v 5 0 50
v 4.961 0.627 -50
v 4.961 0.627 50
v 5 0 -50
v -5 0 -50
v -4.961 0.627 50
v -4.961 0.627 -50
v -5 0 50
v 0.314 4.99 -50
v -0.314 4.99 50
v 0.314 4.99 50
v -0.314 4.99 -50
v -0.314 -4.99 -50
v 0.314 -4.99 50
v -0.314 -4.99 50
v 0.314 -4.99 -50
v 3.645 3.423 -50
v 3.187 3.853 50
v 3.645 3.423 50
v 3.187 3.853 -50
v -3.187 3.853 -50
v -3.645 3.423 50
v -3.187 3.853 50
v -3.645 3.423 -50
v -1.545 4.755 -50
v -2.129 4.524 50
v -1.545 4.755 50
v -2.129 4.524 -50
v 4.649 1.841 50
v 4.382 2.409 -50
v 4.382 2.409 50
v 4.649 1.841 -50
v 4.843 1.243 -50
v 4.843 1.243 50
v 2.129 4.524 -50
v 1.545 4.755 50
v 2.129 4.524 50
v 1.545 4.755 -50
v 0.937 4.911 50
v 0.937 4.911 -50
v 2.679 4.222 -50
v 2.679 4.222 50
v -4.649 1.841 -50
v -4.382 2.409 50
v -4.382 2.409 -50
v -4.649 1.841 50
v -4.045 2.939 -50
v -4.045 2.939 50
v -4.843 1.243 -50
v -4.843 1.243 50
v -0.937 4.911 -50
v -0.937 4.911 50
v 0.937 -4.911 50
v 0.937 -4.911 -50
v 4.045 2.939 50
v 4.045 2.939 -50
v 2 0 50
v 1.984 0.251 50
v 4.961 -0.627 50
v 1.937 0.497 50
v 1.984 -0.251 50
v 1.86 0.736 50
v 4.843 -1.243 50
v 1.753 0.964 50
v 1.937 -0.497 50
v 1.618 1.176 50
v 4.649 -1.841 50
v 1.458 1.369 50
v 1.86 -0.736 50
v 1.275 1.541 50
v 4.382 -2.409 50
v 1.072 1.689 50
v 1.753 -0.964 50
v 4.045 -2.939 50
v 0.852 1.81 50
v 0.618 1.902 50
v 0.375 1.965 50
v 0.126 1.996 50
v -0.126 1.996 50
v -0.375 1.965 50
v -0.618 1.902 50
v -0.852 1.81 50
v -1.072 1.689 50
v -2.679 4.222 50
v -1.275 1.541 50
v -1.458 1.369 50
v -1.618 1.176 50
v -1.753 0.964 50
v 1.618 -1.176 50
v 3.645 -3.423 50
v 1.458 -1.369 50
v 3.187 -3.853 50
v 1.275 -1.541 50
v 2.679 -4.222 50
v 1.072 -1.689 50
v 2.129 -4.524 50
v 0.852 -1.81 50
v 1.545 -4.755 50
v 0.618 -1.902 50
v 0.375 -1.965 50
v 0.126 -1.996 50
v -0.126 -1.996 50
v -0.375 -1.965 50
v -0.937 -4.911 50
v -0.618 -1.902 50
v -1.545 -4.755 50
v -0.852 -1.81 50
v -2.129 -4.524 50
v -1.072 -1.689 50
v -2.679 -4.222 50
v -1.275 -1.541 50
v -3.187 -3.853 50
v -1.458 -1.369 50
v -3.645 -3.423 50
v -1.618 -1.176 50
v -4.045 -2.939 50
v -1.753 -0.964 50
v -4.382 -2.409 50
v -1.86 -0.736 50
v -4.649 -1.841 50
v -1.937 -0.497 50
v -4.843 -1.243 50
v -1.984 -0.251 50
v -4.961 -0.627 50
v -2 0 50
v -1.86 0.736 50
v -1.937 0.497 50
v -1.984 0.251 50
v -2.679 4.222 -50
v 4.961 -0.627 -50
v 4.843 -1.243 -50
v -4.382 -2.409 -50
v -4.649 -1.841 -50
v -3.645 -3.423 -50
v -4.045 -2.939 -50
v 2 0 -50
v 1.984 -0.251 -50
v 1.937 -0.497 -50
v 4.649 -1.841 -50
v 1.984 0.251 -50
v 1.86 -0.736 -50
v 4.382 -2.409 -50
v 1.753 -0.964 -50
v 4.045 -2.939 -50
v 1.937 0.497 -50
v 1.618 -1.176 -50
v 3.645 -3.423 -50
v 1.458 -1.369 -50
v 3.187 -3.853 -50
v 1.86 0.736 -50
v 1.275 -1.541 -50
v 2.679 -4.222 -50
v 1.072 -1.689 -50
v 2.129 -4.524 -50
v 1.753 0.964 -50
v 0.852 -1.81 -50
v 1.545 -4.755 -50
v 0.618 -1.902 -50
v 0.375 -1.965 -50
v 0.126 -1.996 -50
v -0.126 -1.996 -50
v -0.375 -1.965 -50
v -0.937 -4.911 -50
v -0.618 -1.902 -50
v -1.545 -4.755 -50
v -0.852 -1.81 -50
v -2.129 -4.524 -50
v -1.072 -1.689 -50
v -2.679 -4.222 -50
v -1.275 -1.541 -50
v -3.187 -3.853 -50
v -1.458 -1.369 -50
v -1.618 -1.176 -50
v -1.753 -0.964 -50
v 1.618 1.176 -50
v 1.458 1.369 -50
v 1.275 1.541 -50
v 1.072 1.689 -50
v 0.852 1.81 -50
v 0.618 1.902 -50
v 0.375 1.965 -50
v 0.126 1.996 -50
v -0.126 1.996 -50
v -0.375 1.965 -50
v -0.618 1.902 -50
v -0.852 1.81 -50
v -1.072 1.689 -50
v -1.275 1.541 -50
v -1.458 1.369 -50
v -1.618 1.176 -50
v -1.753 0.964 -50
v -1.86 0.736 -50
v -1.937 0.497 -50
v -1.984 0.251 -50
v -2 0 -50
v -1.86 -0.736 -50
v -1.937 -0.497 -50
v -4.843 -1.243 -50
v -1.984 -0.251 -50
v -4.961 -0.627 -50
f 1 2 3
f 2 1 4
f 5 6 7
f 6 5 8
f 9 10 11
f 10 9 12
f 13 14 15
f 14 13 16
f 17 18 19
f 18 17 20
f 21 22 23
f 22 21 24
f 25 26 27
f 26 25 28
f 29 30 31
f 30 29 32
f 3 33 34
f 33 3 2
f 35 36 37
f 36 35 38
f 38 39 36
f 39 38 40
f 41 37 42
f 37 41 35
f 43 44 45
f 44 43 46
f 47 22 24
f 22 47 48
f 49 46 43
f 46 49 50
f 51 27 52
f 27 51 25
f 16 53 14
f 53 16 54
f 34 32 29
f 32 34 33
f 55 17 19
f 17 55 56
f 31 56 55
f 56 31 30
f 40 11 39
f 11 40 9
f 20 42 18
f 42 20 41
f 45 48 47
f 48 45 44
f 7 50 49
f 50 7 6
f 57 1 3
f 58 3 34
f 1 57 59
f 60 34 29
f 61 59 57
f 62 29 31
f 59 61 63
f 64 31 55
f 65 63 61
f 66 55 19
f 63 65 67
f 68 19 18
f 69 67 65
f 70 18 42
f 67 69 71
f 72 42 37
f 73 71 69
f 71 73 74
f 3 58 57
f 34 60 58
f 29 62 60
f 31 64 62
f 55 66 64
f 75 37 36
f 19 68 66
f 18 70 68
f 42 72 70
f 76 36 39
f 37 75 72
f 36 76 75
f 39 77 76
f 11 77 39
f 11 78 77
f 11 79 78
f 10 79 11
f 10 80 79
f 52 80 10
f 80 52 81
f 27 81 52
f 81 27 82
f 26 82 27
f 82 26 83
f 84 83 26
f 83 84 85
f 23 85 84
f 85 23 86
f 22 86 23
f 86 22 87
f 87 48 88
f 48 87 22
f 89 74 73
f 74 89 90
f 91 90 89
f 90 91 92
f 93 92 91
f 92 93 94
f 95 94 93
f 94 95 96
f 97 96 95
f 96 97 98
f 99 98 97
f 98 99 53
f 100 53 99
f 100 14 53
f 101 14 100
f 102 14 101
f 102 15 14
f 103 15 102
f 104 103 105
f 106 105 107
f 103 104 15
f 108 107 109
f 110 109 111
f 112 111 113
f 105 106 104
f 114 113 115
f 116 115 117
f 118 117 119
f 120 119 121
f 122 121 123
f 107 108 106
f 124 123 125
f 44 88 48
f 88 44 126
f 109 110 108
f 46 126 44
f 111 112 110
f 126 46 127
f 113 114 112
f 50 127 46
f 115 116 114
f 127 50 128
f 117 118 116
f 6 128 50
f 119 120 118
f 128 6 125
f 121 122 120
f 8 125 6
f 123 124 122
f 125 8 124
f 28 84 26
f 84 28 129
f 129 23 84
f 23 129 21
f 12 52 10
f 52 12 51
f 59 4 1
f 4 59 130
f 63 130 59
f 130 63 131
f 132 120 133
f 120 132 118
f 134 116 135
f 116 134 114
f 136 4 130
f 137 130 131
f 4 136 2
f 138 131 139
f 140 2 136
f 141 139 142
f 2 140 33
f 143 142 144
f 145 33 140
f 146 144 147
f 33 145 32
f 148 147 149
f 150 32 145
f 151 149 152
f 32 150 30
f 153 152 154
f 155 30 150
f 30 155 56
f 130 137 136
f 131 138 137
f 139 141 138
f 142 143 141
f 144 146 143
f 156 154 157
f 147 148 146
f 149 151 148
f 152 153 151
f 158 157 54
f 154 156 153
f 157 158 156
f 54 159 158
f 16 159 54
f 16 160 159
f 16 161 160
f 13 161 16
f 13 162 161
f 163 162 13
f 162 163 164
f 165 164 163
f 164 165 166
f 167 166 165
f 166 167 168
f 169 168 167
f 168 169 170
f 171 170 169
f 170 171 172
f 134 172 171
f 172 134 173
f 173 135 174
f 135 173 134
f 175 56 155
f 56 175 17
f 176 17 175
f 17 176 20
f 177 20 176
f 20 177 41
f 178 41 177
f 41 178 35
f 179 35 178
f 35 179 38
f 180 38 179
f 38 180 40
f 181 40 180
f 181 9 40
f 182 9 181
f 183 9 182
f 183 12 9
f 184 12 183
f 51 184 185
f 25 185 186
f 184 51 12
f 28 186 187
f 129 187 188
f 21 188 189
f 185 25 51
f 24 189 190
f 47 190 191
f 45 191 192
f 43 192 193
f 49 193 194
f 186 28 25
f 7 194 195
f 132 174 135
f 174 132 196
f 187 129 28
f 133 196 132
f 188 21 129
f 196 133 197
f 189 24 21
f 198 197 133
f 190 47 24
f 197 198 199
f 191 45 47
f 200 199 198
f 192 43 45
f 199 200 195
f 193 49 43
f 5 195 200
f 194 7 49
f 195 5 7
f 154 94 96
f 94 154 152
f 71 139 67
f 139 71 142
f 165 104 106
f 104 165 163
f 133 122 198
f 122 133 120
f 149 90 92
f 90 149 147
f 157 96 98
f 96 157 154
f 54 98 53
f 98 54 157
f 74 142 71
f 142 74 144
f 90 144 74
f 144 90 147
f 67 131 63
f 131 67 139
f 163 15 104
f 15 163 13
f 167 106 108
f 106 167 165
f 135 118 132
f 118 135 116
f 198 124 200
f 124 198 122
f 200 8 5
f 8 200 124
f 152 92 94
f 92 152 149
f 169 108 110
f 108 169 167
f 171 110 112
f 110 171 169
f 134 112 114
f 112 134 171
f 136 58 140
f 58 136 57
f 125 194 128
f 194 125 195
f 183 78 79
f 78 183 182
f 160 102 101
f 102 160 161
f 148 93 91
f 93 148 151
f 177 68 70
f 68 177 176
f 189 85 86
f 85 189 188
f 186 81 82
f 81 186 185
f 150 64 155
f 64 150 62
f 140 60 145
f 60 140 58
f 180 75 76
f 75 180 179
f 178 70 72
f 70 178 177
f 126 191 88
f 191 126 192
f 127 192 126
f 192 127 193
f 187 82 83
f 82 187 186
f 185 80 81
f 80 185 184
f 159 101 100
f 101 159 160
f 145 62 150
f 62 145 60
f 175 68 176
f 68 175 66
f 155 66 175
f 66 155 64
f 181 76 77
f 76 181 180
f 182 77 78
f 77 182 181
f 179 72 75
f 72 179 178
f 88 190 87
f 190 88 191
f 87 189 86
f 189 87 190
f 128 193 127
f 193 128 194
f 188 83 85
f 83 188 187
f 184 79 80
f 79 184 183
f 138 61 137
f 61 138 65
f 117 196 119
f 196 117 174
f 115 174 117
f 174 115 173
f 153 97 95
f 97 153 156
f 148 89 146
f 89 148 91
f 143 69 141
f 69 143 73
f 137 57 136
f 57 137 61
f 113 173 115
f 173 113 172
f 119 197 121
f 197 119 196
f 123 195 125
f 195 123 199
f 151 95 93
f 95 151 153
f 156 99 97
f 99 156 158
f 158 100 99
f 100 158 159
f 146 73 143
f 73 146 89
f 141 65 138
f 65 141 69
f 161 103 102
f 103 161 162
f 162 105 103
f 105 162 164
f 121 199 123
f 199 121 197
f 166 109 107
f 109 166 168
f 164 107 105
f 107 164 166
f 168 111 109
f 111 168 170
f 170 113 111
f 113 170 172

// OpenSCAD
$fn = 50;


difference() {
	union() {
		translate(v = [0, 0, -50.0000000000]) {
			cylinder(h = 100, r = 5.0000000000);
		}
	}
	union() {
		translate(v = [0, 0, -100.0000000000]) {
			cylinder(h = 200, r = 2);
		}
	}
}
